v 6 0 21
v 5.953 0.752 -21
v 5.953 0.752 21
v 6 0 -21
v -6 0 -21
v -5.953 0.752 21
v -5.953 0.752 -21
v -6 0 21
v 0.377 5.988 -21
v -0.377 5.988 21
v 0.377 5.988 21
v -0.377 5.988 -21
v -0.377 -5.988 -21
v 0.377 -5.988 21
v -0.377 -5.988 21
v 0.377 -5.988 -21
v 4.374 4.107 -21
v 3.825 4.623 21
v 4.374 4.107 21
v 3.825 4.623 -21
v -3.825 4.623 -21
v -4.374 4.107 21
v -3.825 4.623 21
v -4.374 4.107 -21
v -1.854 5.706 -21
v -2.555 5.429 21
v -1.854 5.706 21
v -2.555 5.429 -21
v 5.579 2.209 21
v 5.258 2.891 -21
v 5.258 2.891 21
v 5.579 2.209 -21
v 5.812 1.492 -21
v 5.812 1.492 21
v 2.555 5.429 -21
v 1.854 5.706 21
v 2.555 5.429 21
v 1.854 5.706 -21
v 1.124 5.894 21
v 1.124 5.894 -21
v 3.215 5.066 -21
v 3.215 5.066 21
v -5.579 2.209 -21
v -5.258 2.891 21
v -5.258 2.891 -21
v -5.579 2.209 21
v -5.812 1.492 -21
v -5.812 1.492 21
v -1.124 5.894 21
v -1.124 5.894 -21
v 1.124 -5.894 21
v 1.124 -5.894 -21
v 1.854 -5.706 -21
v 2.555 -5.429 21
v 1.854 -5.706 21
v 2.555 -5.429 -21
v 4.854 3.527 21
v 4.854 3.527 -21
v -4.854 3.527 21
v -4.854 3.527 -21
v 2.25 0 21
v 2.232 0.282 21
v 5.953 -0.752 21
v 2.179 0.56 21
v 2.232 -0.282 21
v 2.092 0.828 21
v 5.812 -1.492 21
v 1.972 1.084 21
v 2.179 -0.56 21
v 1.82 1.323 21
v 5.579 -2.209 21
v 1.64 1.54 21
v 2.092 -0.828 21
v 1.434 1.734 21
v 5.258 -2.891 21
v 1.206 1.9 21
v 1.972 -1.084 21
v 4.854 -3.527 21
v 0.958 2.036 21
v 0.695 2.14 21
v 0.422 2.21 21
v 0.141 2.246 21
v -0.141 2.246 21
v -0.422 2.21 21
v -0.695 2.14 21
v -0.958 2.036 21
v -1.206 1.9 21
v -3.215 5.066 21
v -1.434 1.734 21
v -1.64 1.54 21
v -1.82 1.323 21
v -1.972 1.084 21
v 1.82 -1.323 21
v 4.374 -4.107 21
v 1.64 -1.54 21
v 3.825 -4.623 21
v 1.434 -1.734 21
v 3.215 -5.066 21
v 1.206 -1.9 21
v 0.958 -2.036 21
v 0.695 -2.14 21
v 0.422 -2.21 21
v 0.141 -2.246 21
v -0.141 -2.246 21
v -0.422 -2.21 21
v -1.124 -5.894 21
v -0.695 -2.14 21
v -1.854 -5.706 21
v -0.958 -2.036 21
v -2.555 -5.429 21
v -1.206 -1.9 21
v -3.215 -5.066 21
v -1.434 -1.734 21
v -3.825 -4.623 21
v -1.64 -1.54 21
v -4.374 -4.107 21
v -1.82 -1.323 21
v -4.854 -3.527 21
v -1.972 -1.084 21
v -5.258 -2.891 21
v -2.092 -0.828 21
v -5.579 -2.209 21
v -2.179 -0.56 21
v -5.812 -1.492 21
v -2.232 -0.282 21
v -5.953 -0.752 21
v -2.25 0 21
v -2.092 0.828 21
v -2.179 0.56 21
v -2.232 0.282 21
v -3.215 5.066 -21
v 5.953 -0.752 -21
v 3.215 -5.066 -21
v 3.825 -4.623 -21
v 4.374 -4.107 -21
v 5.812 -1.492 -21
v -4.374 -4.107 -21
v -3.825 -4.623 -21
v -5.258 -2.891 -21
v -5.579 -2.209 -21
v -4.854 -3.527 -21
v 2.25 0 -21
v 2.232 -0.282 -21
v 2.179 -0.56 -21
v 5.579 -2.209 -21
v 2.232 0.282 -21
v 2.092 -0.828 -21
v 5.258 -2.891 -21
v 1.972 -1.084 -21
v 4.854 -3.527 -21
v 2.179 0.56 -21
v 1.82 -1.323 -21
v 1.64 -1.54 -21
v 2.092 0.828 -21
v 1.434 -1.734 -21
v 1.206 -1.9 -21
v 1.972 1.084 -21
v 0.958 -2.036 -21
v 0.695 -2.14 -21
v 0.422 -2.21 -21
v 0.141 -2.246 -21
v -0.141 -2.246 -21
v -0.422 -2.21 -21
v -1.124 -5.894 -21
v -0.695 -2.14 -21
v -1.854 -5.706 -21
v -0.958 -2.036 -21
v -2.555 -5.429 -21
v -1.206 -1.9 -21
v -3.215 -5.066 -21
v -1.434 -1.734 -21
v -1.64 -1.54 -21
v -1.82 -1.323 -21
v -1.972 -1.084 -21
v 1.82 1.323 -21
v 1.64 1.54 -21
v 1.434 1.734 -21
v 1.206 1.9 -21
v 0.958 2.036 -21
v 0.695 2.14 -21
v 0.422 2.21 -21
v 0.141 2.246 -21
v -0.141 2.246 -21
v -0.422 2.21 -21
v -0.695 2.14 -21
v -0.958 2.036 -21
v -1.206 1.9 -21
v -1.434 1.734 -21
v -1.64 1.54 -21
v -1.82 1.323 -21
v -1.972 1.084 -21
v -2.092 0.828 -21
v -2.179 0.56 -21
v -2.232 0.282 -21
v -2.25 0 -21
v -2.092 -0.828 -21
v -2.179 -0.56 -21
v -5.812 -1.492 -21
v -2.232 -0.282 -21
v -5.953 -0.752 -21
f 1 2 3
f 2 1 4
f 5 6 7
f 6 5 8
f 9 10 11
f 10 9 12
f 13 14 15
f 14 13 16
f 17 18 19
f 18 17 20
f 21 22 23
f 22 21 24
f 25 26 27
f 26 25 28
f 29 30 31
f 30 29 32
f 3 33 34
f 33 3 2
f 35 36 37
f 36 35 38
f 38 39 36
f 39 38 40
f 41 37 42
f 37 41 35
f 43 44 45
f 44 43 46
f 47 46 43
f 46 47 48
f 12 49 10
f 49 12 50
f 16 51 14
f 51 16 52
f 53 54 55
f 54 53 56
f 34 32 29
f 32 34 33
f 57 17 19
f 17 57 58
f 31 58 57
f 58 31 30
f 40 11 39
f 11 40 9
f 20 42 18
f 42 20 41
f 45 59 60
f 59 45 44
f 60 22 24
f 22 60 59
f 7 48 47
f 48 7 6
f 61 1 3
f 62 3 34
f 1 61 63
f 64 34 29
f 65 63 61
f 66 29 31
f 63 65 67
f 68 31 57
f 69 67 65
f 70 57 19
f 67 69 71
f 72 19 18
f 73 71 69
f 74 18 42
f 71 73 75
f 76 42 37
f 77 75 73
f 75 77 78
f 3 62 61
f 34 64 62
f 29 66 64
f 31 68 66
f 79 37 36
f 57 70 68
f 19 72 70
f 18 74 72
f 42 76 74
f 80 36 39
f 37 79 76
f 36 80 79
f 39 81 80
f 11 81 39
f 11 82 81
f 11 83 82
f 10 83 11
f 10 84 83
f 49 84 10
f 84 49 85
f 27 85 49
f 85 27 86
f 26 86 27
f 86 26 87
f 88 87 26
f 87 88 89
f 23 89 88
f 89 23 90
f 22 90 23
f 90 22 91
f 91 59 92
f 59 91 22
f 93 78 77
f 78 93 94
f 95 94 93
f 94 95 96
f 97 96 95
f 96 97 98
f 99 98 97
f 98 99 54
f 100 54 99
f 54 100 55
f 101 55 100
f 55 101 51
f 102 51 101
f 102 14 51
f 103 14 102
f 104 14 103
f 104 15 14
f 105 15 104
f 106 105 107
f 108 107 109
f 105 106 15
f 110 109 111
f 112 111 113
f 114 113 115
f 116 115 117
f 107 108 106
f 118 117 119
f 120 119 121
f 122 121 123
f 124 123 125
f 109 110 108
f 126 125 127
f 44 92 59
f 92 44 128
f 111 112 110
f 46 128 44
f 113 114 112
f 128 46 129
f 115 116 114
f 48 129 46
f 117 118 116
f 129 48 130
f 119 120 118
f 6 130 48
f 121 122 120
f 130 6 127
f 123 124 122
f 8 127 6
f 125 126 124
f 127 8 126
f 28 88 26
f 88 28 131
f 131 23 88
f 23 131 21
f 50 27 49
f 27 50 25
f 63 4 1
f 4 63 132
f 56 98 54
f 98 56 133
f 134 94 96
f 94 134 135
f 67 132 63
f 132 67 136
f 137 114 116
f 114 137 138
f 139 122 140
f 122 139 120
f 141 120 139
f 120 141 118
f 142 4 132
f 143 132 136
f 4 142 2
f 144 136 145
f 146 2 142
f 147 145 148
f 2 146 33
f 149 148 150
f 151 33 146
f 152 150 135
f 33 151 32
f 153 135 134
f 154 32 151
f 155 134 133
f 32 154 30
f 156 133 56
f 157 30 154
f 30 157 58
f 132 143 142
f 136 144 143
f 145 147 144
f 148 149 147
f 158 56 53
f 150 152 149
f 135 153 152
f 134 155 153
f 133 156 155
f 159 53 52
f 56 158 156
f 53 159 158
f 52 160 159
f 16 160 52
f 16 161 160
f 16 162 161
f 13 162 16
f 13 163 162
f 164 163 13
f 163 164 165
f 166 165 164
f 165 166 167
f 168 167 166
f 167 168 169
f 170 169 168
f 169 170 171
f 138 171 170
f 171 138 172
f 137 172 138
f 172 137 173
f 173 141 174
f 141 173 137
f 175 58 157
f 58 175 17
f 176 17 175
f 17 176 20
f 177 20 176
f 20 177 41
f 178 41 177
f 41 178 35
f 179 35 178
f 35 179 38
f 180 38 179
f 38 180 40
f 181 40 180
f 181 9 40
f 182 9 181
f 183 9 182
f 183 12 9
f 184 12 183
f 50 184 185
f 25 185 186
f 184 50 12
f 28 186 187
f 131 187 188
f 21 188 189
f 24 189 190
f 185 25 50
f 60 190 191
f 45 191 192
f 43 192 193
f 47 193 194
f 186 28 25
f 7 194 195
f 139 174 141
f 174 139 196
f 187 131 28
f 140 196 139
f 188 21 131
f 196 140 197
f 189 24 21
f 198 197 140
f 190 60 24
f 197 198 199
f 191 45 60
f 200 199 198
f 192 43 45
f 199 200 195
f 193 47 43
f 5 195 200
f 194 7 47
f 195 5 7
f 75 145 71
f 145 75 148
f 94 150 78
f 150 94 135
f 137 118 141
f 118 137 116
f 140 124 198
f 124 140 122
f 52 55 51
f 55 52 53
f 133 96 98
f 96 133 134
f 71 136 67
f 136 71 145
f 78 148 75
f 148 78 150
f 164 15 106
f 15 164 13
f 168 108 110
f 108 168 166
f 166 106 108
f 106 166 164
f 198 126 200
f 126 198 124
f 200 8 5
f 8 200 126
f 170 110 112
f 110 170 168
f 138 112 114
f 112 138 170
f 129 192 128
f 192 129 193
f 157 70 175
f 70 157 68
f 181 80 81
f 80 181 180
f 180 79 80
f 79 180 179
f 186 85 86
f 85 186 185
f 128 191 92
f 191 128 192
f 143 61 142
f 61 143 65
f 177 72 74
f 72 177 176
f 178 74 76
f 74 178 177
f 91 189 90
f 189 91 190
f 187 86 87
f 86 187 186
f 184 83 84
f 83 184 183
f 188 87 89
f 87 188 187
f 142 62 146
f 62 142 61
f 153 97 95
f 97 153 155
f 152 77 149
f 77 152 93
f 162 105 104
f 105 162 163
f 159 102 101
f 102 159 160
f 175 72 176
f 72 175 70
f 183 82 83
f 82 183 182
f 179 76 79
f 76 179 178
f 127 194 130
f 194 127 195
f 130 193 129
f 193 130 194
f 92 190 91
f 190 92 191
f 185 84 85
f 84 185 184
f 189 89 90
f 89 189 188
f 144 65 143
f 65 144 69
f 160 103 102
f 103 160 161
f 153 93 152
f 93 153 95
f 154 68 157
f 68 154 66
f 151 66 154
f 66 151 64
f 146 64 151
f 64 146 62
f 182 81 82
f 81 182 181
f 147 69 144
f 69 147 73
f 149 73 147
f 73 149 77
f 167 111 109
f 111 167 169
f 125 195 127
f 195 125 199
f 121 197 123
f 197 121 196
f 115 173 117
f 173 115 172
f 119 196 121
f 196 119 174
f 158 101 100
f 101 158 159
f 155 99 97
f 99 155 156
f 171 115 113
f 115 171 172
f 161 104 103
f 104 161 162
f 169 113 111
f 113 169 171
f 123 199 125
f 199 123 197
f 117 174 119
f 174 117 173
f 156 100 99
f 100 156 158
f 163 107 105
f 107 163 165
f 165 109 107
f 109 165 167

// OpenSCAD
$fn = 50;


difference() {
	union() {
		translate(v = [0, 0, -21.0000000000]) {
			cylinder(h = 42, r = 6.0000000000);
		}
	}
	union() {
		translate(v = [0, 0, -100.0000000000]) {
			cylinder(h = 200, r = 2.2500000000);
		}
	}
}
